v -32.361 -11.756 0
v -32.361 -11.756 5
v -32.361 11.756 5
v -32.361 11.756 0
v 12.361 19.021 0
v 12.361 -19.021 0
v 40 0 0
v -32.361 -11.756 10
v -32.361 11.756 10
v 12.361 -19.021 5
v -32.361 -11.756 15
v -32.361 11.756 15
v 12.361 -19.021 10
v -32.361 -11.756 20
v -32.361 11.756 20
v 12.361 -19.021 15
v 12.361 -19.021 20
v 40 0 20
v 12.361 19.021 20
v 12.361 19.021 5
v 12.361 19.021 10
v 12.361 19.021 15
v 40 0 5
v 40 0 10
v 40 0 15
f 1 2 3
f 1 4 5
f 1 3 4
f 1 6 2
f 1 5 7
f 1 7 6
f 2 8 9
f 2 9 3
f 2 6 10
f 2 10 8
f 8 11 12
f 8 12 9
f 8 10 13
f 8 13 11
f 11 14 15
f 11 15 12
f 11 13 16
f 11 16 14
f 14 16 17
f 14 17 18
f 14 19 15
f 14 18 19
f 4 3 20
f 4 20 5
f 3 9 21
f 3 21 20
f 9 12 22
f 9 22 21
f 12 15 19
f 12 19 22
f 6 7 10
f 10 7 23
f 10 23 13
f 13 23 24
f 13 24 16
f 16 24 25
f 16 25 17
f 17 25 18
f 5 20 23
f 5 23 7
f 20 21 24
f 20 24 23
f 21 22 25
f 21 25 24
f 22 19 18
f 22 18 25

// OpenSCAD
// Start: lazy_union
default_5_default_5();
// End: lazy_union

// Modules.

// 'PartMaterial undef-default - default 5.0'
module default_5_default_5() {
  // 'None : _combine_solids_and_holes'
  union() {
    // 'default : _combine_solids_and_holes'
    union() {
      // 'prism'
      multmatrix(m=[[-1.0, -0.0, -0.0, -0.0], [-0.0, -1.0, -0.0, -0.0], [0.0, 0.0, 1.0, 0.0], [0.0, 0.0, 0.0, 1.0]]) {
        // 'prism : _combine_solids_and_holes'
        union() {
          // 'prism'
          linear_extrude(height=20.0, twist=0.0, slices=4, scale=[1.0, 1.0]) {
            polygon(points=[[-40.0, 0.0], [-12.360679774997898, 19.02113032590307], [32.36067977499789, 11.755705045849465], [32.3606797749979, -11.75570504584946], [-12.36067977499789, -19.021130325903073]]);
          }
        }
      }
    }
  }
} // end module default_5_default_5
